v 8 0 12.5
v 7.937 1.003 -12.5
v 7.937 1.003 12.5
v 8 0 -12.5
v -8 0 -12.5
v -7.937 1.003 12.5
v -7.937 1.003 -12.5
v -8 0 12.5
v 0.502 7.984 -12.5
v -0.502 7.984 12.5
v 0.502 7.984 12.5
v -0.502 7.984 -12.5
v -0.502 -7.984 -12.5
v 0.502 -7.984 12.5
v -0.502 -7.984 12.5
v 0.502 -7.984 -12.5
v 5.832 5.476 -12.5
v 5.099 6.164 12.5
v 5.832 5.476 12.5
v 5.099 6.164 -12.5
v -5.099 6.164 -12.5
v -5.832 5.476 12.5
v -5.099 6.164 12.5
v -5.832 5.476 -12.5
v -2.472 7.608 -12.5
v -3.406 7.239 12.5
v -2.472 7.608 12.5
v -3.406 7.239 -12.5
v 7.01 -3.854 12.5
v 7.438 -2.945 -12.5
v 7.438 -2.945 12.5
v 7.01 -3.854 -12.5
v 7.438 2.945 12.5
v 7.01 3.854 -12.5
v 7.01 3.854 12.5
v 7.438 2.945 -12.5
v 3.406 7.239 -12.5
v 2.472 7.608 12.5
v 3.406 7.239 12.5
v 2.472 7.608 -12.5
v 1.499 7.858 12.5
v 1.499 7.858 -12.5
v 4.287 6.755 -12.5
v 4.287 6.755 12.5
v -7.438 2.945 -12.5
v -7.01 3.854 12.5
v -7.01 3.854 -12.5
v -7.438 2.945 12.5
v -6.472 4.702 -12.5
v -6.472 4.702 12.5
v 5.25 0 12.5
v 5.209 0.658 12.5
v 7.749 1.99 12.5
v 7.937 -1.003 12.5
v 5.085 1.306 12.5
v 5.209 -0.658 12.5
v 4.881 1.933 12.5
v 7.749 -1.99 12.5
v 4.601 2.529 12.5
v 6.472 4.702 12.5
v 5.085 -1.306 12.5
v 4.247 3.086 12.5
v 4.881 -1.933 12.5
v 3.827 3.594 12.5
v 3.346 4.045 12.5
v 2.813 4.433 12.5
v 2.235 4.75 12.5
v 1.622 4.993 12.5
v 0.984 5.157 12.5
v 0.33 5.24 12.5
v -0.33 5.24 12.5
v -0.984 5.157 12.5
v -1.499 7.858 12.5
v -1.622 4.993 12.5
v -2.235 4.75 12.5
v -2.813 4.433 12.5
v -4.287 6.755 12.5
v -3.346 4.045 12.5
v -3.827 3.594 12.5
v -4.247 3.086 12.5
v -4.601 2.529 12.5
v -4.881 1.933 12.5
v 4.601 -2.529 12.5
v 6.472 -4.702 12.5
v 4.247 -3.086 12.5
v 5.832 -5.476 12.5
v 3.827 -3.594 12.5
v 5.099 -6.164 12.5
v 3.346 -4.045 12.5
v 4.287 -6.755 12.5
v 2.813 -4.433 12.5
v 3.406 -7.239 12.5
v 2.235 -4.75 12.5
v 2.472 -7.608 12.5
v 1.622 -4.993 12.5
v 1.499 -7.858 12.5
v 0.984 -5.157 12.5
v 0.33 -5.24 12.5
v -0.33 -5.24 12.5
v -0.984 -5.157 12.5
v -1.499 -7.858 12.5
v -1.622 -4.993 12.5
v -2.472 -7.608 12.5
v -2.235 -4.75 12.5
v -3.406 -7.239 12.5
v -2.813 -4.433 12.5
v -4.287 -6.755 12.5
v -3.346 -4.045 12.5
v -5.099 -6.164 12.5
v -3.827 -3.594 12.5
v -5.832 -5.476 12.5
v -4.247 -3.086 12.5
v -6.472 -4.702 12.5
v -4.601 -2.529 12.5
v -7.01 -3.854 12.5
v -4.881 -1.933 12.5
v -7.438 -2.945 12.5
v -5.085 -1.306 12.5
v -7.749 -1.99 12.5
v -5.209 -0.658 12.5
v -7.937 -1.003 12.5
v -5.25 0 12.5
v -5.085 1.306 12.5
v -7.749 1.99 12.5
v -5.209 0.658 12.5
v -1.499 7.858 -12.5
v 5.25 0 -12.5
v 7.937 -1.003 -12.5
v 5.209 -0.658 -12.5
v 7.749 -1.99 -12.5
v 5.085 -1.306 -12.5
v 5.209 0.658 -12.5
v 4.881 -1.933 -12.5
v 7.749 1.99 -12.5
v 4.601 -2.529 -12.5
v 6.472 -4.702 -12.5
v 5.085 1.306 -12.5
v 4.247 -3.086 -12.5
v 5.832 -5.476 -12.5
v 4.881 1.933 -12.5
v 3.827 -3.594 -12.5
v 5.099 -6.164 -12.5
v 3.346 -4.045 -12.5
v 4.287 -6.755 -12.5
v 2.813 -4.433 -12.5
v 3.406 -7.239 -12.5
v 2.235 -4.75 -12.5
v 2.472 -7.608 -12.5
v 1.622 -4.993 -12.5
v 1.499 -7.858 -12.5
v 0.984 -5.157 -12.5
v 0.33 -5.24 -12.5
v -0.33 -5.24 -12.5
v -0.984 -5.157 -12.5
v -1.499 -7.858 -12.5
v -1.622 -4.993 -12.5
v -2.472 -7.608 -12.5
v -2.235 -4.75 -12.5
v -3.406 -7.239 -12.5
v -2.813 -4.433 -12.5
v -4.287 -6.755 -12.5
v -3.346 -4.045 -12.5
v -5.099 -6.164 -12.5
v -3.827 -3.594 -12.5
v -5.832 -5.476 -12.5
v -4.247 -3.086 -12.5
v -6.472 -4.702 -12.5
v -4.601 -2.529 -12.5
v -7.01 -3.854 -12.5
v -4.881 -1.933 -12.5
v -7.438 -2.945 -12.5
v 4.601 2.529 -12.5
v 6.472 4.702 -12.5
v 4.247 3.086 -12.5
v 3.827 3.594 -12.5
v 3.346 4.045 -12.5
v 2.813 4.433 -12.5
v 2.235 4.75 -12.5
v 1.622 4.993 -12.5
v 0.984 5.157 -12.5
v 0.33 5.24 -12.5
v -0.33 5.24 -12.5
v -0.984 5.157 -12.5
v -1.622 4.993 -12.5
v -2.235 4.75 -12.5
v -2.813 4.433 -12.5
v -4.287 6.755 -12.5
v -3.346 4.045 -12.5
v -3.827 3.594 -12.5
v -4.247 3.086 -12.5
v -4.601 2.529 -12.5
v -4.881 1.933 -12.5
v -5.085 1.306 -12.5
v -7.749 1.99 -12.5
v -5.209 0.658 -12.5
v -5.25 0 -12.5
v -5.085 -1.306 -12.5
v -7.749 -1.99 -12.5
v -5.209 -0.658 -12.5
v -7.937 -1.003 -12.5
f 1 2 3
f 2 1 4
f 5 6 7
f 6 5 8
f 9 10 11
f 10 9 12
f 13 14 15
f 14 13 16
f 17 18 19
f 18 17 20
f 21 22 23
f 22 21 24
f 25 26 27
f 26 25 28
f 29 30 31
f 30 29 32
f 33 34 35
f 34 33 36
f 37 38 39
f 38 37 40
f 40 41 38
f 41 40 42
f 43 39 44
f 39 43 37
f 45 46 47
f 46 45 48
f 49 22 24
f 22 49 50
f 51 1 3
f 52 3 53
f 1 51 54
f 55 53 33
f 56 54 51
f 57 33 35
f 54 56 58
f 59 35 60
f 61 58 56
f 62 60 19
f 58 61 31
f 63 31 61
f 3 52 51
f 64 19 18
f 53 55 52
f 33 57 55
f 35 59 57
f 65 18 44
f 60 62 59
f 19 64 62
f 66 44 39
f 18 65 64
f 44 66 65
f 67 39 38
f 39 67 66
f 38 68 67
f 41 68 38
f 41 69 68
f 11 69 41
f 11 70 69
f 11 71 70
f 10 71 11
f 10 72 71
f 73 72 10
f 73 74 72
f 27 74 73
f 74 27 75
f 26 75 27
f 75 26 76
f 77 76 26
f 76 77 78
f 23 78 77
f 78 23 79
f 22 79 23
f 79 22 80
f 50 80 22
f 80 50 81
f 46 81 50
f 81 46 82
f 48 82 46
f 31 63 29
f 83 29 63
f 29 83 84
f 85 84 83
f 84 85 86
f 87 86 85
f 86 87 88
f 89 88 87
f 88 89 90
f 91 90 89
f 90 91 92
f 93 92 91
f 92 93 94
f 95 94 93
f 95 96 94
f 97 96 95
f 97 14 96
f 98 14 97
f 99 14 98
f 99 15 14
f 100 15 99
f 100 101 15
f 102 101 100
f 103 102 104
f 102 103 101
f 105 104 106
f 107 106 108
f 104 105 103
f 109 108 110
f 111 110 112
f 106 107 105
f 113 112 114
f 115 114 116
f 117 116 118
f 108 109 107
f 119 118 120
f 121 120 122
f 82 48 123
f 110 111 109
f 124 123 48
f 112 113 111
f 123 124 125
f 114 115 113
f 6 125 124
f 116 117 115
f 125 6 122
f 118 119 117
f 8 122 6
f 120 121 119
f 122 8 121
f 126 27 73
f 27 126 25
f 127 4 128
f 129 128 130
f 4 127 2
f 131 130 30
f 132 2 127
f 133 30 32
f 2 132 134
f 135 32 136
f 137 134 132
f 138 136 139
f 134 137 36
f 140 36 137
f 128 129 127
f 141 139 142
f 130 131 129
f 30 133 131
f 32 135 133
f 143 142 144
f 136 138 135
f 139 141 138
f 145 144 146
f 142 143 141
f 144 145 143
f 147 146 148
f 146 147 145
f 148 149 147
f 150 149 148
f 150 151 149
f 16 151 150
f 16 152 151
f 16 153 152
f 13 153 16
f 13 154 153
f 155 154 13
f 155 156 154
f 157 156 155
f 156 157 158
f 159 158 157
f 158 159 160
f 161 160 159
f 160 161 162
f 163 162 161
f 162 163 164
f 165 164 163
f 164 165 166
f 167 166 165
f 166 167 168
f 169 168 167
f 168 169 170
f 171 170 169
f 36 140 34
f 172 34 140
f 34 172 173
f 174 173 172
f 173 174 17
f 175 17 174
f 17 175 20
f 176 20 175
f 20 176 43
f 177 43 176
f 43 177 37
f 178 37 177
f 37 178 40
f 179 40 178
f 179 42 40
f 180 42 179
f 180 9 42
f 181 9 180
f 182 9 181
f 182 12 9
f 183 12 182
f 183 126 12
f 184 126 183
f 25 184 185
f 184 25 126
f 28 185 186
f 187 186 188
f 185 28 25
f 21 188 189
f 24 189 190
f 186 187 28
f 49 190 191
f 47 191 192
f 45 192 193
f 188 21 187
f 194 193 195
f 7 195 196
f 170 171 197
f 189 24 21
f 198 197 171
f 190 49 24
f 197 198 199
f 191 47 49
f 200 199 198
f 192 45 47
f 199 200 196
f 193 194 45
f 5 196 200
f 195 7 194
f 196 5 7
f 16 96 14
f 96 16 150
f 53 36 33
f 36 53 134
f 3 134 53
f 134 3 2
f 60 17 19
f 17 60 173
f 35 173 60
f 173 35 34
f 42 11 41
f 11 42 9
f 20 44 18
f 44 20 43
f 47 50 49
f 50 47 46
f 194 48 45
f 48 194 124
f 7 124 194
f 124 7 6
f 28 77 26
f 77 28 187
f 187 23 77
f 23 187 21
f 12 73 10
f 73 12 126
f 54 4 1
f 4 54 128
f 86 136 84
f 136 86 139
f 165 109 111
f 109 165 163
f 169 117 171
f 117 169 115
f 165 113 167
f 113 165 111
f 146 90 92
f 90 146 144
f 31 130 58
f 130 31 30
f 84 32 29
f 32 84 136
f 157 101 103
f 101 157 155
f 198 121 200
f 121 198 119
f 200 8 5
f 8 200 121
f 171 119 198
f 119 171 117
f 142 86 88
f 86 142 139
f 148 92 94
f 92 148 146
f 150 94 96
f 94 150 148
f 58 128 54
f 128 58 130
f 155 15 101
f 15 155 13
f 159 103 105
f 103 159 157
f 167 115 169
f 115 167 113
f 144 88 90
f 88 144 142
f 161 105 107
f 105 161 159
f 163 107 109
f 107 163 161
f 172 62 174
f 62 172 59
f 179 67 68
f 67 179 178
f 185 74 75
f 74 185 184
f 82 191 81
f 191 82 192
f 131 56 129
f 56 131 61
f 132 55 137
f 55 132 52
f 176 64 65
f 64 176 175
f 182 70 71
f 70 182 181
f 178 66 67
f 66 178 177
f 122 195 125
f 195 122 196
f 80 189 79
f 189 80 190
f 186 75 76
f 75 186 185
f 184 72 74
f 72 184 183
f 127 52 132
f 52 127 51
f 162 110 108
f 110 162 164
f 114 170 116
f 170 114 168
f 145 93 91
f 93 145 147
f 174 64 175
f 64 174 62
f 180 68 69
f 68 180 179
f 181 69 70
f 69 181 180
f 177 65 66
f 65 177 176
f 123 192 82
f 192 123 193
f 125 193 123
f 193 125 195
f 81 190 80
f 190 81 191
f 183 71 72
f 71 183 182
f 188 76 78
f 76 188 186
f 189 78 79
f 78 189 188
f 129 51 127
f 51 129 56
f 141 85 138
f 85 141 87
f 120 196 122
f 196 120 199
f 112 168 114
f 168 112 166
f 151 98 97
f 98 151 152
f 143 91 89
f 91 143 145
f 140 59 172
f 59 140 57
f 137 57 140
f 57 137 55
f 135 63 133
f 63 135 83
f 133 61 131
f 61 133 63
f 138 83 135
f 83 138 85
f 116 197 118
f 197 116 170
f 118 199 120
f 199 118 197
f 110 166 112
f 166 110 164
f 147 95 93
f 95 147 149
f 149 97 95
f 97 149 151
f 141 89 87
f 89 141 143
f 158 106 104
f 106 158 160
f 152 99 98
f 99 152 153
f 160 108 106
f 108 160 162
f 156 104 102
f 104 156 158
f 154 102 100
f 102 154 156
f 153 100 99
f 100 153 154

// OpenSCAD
$fn = 50;


difference() {
	union() {
		translate(v = [0, 0, -12.5000000000]) {
			cylinder(h = 25, r = 8.0000000000);
		}
	}
	union() {
		translate(v = [0, 0, -100.0000000000]) {
			cylinder(h = 200, r = 5.2500000000);
		}
	}
}
